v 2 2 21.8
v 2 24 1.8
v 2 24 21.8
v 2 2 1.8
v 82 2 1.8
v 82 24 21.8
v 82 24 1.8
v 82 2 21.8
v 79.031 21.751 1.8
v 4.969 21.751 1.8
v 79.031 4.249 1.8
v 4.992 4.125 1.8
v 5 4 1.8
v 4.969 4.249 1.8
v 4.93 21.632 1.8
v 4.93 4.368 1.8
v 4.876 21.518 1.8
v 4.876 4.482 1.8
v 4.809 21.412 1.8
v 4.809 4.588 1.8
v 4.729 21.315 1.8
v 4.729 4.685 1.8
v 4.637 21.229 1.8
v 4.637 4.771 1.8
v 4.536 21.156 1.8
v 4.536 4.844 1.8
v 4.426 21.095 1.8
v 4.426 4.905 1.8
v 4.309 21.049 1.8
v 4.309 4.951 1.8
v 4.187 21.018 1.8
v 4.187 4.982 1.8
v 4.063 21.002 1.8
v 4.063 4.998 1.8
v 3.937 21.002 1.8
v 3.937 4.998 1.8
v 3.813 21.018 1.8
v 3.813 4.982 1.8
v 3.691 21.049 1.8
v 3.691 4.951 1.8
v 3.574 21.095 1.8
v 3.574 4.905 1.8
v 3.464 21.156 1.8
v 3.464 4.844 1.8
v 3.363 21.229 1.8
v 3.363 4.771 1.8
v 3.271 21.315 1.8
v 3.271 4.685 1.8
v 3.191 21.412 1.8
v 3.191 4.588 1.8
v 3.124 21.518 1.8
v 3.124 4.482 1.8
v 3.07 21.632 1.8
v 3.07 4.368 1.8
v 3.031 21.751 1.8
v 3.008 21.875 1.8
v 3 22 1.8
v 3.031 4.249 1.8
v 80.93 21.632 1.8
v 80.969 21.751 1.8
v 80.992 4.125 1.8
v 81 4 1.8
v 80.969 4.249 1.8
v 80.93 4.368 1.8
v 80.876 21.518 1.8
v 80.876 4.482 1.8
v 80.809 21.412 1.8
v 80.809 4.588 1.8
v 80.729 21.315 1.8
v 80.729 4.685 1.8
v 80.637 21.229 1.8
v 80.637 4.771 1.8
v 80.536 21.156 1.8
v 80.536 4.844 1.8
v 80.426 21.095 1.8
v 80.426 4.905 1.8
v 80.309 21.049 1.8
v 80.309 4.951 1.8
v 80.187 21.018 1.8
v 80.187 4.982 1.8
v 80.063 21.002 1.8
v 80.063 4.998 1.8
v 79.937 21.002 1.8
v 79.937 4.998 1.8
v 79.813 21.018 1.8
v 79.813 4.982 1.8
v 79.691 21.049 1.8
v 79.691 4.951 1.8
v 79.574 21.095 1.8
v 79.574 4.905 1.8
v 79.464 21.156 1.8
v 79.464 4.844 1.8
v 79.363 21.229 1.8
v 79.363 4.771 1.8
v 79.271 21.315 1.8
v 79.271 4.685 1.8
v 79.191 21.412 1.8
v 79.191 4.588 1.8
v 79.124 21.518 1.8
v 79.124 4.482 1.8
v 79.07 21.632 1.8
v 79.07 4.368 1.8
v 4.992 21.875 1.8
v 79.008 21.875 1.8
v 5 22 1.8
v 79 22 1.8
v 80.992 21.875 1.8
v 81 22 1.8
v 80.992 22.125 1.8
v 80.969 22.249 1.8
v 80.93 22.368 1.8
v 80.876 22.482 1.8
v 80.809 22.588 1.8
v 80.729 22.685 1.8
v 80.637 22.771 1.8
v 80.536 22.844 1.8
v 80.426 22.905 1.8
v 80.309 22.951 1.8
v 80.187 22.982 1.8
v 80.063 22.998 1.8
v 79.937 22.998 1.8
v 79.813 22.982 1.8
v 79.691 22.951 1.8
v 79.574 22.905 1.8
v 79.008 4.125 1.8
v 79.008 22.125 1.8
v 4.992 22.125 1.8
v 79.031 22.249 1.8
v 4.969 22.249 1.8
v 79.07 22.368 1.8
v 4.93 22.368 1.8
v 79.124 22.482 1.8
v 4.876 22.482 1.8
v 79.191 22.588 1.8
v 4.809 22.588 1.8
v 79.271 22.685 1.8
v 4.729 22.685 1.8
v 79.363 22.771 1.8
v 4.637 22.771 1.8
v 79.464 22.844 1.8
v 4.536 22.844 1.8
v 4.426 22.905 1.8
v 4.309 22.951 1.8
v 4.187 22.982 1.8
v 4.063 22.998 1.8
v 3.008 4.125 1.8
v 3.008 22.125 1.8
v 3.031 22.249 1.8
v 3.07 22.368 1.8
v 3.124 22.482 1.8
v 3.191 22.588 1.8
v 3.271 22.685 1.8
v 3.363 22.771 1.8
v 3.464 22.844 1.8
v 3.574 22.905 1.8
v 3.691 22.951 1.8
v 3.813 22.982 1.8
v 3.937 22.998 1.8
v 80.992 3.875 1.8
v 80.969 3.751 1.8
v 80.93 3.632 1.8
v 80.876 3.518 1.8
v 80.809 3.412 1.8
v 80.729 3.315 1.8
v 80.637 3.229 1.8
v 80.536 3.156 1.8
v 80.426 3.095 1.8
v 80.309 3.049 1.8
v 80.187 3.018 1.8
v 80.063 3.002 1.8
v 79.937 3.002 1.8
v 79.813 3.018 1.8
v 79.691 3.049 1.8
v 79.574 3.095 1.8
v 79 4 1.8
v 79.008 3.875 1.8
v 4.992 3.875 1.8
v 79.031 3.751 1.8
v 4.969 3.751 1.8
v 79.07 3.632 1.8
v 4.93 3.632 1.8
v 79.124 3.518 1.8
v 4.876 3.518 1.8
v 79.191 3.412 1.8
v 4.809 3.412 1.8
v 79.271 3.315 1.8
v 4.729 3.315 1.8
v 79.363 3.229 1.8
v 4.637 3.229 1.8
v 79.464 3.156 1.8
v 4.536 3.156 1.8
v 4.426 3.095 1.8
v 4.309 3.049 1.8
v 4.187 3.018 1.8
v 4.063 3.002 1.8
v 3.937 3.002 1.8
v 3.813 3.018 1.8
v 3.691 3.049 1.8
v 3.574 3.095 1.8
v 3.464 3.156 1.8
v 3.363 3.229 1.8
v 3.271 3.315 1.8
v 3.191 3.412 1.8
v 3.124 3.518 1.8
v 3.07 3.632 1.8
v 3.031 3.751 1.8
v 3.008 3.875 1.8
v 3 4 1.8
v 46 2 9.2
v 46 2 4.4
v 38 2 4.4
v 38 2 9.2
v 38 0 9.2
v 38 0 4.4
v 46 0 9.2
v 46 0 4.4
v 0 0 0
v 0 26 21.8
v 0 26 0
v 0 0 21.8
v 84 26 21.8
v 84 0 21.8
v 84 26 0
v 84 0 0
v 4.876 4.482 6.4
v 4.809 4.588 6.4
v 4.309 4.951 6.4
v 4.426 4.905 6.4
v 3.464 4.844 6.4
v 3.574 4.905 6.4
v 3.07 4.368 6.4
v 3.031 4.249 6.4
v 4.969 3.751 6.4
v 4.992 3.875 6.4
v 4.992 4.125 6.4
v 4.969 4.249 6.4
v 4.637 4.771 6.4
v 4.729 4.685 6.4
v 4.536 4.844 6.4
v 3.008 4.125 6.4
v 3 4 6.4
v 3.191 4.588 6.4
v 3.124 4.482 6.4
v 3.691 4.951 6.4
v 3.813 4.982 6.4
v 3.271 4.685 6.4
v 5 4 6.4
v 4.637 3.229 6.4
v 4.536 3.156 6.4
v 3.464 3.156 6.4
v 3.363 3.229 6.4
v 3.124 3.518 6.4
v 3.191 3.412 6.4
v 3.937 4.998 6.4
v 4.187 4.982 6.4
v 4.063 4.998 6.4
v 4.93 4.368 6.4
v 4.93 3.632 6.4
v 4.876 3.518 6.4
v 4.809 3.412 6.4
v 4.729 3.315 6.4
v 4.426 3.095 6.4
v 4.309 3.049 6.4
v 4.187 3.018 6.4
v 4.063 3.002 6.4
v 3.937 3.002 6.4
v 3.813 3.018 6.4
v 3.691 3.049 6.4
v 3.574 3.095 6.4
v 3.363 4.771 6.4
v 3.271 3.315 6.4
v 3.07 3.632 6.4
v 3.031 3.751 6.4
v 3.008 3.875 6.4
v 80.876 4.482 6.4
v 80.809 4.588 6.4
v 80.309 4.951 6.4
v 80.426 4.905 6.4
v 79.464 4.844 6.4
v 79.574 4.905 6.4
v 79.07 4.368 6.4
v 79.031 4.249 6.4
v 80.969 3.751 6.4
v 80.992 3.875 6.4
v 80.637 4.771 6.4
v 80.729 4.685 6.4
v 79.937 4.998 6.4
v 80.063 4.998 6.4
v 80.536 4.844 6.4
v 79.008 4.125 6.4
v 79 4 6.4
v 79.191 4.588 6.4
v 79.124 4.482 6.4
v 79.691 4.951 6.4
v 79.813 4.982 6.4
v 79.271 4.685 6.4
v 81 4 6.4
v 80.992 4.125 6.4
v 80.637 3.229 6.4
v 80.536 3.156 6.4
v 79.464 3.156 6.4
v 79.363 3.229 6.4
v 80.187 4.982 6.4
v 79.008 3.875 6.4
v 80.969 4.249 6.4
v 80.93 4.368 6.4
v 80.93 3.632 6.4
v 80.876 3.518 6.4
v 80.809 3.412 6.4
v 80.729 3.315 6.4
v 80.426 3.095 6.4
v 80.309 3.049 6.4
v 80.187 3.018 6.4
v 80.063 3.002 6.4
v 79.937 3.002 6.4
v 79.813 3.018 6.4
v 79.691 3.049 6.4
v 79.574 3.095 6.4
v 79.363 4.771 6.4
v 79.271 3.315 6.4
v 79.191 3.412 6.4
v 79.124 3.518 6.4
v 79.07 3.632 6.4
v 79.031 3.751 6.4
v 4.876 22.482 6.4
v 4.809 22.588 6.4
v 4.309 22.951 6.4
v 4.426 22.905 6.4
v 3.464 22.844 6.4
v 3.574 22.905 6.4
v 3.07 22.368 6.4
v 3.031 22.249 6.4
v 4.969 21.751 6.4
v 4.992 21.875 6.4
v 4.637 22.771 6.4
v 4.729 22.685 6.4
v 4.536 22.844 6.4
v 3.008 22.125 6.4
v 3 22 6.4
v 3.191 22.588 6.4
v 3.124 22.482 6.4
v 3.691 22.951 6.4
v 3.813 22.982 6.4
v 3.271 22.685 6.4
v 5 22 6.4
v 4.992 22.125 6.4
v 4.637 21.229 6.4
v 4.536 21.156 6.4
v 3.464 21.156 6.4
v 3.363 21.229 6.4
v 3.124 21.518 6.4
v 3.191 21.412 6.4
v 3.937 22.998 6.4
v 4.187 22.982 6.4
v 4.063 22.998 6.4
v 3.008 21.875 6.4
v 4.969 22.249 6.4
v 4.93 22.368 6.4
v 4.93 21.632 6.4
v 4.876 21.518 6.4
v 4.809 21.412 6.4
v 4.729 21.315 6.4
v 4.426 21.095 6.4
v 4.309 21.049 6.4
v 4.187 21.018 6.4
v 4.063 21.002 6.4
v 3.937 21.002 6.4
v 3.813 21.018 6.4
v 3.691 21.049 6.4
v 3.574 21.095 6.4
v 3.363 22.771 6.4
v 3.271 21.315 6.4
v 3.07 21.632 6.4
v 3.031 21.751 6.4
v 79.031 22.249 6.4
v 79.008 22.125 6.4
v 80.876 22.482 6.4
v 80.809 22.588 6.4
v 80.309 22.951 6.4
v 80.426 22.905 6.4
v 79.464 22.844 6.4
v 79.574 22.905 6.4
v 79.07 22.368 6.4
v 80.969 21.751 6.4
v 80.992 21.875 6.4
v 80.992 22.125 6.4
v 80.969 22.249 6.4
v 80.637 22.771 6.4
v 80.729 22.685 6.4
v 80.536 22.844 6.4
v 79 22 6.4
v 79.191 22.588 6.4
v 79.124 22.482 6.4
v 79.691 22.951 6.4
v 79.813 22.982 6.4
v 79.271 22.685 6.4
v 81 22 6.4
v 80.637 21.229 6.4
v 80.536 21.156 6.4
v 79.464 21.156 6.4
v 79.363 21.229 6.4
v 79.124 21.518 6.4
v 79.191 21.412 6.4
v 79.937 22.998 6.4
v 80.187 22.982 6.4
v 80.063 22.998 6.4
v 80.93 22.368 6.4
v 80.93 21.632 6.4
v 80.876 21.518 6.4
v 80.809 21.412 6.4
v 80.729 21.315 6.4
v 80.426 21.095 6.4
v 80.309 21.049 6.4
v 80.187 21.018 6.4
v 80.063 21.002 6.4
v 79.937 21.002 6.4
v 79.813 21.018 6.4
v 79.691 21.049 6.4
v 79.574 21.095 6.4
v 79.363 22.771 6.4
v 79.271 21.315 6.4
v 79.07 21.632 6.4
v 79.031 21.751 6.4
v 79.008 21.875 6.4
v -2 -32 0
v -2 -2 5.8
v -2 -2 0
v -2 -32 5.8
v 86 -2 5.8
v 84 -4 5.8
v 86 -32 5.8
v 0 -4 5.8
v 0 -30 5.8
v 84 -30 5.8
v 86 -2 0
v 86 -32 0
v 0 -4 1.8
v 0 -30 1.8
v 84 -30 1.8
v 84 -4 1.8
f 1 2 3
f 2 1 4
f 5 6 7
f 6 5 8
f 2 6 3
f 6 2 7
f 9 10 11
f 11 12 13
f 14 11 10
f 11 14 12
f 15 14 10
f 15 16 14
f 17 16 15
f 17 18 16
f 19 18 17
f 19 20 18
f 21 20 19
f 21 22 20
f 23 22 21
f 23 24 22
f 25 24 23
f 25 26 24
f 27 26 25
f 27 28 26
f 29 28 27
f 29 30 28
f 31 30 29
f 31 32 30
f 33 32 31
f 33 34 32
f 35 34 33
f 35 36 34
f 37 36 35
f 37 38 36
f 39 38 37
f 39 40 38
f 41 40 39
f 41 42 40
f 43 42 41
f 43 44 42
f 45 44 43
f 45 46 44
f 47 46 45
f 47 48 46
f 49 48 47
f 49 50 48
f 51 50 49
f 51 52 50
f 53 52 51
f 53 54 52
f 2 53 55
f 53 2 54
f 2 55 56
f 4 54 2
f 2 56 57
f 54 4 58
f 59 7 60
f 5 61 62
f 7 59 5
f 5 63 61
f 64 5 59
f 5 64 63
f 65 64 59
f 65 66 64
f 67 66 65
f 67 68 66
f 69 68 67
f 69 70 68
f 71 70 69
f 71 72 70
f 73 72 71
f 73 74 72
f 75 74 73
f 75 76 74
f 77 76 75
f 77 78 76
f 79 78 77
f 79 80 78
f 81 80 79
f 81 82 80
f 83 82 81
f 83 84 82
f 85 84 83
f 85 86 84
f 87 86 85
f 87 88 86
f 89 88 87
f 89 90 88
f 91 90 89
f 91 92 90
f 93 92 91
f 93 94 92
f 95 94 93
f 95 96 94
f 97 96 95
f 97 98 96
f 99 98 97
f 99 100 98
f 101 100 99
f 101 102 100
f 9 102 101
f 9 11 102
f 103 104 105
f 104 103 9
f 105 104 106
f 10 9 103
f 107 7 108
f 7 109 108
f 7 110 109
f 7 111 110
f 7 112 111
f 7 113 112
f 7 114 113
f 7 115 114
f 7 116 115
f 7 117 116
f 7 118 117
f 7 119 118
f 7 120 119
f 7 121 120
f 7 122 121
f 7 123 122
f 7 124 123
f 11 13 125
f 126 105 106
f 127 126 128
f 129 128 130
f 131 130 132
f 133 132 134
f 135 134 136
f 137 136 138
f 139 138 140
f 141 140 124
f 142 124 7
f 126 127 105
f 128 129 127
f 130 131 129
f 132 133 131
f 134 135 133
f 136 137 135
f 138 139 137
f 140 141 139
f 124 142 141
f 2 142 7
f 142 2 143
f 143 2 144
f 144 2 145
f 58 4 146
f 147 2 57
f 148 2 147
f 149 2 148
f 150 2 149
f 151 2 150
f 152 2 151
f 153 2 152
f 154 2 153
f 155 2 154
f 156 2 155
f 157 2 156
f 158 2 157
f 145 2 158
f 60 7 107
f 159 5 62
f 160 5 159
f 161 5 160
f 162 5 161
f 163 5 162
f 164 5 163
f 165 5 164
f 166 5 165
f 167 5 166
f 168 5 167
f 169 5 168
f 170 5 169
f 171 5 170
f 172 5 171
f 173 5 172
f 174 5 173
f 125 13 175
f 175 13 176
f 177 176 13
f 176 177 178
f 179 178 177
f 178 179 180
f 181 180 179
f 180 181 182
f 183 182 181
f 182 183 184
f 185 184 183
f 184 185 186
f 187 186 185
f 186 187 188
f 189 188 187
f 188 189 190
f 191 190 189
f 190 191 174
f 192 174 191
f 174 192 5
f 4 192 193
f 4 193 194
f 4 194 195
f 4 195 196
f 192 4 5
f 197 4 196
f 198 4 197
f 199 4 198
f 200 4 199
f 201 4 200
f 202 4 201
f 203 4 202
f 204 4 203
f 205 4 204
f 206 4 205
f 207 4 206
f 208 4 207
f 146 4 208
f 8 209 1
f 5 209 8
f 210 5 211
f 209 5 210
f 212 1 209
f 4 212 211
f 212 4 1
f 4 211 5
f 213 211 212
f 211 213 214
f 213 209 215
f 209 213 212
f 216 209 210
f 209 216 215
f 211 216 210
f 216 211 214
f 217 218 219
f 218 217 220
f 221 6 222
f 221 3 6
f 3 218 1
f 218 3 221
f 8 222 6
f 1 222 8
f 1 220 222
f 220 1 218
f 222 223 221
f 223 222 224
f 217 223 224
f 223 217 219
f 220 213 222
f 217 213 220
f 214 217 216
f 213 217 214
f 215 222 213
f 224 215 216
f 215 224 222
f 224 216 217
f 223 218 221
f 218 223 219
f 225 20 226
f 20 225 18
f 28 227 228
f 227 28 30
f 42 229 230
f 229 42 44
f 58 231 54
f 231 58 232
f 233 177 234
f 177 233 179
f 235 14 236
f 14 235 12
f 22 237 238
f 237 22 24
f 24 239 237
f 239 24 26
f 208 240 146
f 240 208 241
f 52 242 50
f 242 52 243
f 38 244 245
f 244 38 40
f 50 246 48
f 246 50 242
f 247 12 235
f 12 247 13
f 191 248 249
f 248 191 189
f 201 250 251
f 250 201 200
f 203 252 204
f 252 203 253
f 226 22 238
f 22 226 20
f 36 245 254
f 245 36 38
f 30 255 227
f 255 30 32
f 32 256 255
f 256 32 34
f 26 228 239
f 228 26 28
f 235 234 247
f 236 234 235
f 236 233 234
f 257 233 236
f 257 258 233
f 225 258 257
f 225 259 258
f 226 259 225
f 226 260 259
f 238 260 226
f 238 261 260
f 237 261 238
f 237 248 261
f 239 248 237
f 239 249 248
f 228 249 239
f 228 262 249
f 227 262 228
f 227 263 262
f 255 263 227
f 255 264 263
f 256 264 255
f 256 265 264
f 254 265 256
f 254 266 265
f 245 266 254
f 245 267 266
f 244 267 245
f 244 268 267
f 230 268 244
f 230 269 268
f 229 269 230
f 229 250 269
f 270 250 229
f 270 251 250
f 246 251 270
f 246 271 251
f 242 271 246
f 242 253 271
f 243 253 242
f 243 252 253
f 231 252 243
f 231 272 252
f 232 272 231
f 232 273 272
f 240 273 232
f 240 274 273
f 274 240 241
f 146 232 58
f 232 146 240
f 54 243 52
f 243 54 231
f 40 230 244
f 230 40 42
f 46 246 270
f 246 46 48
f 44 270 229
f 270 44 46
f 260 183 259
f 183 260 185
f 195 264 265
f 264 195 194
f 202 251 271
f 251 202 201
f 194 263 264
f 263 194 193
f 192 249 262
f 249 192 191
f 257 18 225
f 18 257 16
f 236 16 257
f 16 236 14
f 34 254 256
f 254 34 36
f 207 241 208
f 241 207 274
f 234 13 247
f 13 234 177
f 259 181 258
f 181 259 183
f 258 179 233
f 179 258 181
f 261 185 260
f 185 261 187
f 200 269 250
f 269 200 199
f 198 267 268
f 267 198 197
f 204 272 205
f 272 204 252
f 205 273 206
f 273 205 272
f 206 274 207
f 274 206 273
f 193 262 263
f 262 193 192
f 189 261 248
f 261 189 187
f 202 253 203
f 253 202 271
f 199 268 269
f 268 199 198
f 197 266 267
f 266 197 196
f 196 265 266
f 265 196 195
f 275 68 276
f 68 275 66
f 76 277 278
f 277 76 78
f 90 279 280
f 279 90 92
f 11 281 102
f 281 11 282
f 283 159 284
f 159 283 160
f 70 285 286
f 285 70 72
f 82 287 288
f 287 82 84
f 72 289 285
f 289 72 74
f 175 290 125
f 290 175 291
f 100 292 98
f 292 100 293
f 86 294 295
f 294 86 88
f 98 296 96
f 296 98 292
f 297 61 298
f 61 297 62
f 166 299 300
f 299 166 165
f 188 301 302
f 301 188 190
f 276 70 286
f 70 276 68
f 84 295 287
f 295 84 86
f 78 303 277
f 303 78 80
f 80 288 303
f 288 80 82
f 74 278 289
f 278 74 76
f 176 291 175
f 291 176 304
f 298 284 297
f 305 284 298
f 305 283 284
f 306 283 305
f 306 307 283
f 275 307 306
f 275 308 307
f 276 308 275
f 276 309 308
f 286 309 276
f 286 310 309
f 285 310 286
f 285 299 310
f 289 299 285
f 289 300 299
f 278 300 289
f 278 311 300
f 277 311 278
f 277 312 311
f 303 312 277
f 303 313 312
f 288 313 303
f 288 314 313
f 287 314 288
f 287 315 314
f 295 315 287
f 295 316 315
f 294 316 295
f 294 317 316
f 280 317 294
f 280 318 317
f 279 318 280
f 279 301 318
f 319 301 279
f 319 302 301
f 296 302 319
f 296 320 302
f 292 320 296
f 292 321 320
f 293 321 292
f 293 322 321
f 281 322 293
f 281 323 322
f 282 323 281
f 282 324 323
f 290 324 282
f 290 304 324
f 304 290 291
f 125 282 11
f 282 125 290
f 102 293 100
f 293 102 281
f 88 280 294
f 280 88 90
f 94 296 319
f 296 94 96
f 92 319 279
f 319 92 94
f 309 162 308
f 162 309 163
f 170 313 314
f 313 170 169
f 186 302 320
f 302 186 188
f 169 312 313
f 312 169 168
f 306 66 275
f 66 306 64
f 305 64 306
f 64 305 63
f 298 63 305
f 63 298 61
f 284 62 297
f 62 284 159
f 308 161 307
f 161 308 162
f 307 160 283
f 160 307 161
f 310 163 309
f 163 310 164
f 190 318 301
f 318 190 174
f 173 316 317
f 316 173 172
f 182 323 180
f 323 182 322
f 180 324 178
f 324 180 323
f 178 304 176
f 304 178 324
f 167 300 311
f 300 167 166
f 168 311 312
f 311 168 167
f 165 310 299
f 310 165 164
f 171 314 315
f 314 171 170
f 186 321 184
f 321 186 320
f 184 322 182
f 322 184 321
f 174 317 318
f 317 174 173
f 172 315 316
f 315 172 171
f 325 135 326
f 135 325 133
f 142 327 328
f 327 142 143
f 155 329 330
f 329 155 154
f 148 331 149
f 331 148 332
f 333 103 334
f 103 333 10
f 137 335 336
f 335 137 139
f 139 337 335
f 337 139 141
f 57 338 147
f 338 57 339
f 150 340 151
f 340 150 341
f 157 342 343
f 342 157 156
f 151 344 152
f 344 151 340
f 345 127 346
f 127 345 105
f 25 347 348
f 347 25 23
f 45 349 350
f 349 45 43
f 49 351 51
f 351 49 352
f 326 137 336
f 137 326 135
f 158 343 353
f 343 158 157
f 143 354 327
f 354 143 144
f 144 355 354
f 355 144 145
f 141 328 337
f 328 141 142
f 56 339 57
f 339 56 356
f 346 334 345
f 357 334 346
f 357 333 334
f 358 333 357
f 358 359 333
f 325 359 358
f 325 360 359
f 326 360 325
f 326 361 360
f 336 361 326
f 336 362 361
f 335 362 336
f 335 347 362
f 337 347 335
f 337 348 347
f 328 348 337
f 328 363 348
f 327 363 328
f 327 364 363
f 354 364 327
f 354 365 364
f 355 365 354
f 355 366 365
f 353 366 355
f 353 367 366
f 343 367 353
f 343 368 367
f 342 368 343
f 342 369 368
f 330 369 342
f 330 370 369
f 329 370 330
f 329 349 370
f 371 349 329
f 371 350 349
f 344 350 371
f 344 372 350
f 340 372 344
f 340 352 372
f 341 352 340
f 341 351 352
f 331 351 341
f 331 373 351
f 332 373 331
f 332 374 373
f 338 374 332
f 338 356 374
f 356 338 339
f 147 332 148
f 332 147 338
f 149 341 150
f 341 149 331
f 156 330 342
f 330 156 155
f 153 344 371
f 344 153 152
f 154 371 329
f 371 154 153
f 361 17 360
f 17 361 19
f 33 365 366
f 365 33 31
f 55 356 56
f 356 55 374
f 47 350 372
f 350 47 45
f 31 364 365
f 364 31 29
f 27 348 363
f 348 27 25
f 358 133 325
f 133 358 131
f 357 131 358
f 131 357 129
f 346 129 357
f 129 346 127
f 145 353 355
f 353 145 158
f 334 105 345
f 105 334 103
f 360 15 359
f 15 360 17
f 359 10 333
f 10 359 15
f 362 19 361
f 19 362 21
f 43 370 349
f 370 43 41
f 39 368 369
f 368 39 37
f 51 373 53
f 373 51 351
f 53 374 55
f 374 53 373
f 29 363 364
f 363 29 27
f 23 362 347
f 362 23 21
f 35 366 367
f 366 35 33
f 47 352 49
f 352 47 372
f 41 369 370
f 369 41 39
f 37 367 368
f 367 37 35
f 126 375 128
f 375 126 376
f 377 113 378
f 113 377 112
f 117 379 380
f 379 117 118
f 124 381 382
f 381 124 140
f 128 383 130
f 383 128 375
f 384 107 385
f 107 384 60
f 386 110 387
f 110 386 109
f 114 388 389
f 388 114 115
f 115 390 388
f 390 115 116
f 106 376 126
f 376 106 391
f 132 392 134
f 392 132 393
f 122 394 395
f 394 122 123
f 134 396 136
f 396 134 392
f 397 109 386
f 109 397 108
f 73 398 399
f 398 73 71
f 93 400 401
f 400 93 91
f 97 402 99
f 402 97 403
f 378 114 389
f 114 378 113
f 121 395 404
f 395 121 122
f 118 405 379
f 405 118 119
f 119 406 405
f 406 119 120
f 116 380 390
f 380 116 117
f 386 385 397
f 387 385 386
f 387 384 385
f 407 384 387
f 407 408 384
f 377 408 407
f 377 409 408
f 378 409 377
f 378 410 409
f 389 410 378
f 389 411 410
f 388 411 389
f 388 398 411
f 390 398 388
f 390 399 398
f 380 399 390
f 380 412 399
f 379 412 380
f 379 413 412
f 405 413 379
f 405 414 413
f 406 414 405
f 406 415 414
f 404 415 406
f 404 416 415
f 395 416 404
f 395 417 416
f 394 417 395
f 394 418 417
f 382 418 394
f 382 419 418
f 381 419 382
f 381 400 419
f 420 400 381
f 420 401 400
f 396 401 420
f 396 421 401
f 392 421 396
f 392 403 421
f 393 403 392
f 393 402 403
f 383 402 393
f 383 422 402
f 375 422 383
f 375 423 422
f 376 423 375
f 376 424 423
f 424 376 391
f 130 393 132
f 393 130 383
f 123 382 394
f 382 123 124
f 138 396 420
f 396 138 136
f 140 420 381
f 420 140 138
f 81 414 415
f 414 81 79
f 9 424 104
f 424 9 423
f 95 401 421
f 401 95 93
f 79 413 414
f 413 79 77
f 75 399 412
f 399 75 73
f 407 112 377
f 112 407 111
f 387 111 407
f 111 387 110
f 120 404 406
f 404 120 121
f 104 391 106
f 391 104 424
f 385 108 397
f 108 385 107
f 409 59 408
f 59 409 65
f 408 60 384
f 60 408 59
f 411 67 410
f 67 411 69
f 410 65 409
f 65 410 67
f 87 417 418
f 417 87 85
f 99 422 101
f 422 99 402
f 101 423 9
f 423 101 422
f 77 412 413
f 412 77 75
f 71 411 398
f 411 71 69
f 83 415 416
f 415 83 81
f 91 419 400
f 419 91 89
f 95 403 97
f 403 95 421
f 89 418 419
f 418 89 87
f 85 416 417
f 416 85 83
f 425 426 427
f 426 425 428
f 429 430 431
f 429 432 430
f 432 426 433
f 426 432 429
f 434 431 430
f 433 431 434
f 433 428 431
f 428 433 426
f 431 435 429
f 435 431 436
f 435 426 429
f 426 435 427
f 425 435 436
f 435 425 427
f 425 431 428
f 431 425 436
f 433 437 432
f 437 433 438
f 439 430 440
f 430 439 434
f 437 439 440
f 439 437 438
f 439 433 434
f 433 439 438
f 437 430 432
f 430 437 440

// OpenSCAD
first_layer_height = 0.2;
layer_height = 0.2;

bottom_width = z_dim_adj(2-first_layer_height);
top_width = z_dim_adj(2);
wall_width = 0.4;

function xy_dim_adj(x) = ceil(x/wall_width)*wall_width;
function  z_dim_adj(z) = ceil(z/layer_height)*layer_height;

box_l = 80;
box_w = 22;
box_h = 24-4;
box_bt_h = 1.55+1.05;
cap_h = 4;
box_wall_width = xy_dim_adj(2);

box_l_adj = xy_dim_adj(box_l);
box_w_adj = xy_dim_adj(box_w);
box_h_adj = z_dim_adj(box_h);
box_bt_h_adj = z_dim_adj(box_bt_h);
cap_h_adj = z_dim_adj(cap_h);

post_height = z_dim_adj(box_bt_h+2);
post_diameter = xy_dim_adj(2);
post_wall_offset = box_wall_width+post_diameter/2+1;
post_xy = [
  [                             post_wall_offset,                              post_wall_offset],
  [box_l_adj+2*box_wall_width - post_wall_offset,                              post_wall_offset],
  [                             post_wall_offset, box_w_adj+2*box_wall_width - post_wall_offset],
  [box_l_adj+2*box_wall_width - post_wall_offset, box_w_adj+2*box_wall_width - post_wall_offset]
];

union() {
  difference() {
    cube([box_l_adj+2*box_wall_width, box_w_adj+2*box_wall_width, box_h_adj+bottom_width]);
    union() {
      translate([box_wall_width, box_wall_width, bottom_width])
        cube([box_l_adj, box_w_adj, box_h_adj+bottom_width]);
        
      translate([xy_dim_adj(box_l_adj/2-4)+box_wall_width, -box_wall_width, bottom_width+box_bt_h_adj])
        cube([xy_dim_adj(8), 3*box_wall_width, z_dim_adj(3)+bottom_width]);
      
    }
  }
  for(xy = post_xy) {
    translate([xy[0], xy[1], bottom_width])
      cylinder(h=post_height, d=post_diameter, $fn=50, center=false);
  }
}

// cap
translate([0, -box_w_adj-4*box_wall_width, 0])
difference() {
  translate([-box_wall_width, -box_wall_width, 0])
    cube([box_l_adj+4*box_wall_width, box_w_adj+4*box_wall_width, cap_h_adj+bottom_width]);
  translate([0, 0, bottom_width])
    cube([box_l_adj+2*box_wall_width, box_w_adj+2*box_wall_width, cap_h_adj+2*bottom_width]);
}
